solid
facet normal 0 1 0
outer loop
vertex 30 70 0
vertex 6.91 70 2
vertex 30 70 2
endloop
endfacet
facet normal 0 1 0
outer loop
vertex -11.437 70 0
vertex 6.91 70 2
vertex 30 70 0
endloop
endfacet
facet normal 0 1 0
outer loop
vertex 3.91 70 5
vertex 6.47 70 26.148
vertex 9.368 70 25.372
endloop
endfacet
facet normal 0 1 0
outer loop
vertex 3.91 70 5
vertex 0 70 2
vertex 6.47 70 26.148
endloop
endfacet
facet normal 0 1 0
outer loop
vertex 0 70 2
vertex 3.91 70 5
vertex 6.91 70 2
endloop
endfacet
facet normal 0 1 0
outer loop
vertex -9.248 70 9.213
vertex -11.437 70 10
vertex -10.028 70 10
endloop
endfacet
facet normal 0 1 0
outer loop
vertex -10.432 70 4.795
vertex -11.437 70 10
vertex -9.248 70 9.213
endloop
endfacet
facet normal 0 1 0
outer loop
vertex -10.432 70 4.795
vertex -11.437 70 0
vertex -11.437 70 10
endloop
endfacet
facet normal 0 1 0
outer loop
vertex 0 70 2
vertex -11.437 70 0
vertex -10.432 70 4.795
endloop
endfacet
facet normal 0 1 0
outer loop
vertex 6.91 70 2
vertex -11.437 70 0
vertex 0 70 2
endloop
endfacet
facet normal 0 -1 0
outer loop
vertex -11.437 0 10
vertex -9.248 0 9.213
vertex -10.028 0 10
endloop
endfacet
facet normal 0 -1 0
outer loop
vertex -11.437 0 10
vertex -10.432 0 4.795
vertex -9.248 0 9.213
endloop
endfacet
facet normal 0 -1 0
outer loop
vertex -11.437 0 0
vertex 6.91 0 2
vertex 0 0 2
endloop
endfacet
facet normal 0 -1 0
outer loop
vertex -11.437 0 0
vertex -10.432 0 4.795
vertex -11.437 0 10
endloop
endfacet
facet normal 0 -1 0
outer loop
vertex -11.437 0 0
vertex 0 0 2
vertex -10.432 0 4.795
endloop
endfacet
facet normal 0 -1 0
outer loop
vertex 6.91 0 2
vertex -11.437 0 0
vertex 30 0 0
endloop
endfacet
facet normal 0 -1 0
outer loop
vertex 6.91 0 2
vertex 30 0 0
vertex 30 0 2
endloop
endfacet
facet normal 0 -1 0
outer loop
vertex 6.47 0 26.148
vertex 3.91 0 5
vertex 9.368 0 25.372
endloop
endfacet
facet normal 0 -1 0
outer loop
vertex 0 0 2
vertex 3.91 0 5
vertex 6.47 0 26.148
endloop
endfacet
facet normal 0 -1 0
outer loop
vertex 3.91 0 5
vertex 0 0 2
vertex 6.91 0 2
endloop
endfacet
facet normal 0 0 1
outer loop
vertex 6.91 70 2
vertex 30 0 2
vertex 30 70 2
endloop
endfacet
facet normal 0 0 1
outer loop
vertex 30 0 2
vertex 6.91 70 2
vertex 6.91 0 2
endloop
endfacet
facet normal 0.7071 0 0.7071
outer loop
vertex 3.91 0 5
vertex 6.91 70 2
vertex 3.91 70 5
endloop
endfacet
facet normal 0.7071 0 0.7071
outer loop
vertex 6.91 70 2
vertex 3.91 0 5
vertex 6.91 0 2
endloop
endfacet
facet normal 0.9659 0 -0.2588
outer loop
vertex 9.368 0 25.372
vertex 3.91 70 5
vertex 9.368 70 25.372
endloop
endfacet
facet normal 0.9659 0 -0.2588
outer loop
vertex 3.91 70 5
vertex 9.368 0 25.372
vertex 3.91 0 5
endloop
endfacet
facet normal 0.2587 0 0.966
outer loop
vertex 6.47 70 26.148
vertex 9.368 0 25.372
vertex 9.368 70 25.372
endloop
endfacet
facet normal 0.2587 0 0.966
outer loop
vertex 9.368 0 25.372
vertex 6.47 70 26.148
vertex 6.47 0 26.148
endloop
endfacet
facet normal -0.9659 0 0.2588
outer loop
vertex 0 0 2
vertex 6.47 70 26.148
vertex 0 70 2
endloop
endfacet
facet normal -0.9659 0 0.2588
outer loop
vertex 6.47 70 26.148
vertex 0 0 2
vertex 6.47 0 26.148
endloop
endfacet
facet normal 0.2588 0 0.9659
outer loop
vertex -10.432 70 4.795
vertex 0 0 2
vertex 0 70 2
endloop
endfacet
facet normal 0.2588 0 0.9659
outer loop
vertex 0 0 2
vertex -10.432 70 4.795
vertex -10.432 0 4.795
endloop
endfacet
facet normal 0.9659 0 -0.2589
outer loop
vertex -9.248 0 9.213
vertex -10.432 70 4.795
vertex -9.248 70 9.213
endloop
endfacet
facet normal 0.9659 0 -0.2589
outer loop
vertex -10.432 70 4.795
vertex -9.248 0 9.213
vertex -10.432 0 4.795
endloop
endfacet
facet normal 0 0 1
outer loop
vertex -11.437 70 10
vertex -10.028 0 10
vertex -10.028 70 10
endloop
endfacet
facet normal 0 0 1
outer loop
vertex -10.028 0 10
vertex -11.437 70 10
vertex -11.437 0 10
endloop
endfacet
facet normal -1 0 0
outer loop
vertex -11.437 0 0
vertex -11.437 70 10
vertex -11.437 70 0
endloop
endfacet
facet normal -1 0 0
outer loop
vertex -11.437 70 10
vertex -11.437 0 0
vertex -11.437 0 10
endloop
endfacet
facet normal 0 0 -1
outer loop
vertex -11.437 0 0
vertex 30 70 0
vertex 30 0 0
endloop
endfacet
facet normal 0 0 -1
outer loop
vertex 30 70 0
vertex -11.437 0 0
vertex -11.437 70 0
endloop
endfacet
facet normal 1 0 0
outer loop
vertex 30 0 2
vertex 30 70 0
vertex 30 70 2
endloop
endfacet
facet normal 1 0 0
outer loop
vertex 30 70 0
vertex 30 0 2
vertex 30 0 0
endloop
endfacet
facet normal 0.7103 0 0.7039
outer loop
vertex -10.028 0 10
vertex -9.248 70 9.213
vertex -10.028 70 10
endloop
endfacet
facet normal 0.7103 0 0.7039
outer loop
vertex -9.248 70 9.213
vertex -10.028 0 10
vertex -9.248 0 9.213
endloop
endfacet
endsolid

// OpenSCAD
// slab-stand-01.scad
// Low, quick-print, generic display stand for ONE graded slab, leaning 15 deg back.
// Thin-walled profile extruded across the width (2 mm base plate, low front
// lip, thin back rest with a small fillet): prints on its base, no supports,
// no bridges. The slab's bottom edge drops into a short tilted slot and rests
// against the back wedge; the slab is wider than the stand on purpose (less
// plastic, faster print, edges stay free to grab).
//
// Fits any slab up to 9.8 mm thick: the slot is sized for the THICKEST slab
// measured in this repo (ARS 9.8; BGS 8.8, PCG 7.5, CGC 7.4, GBA 7.1,
// PSA/GRADD 6.2). A slot sized for the thinnest would not take the thick ones;
// thinner slabs just lean back on the rest, the extra play doesn't show.
// Width and height don't matter: the slab only sits on its bottom edge.
//
// Export:
//   "C:/Program Files/OpenSCAD/openscad.com" -o <abs>/slab-stand-01.stl <abs>/slab-stand-01.scad

part = "stand"; // "stand" | "check" (stand + ghost slab)

/* [Slab] */
slab_t = 9.8;   // thickest slab to fit (ARS); sets the slot
slab_w = 80.0;  // only used for the ghost and the tip check
slab_h = 135.0;

/* [Fit] */
fit_t = 0.5;          // per side, on thickness (short drop-in, no long slide)

/* [Shape] */
lean     = 15;        // degrees back
width    = 70;        // narrower than every slab (80-84 mm): all stick out 5-7 mm per side
floor_z  = 2;         // base plate / solid under the slot
lip_h    = 8;         // front lip height above the slot floor
lip_t    = 2.4;       // front lip thickness
back_h   = 25;        // how far up the slab the back rest reaches
panel_t  = 3;         // back rest plate thickness
fillet   = 3;         // gusset where the back rest meets the base plate
base_back = 30;       // base plate length behind the slot (anti-tip backwards)
ch       = 1.0;       // chamfer on the slot mouth

// ---------------------------------------------------------------------
slot_t  = slab_t + 2 * fit_t;
lip_top = floor_z + lip_h;

// Slab frame -> world XZ. du = along the slab (up), dn = forward (toward the
// viewer, -X). Origin = bottom/back corner of the slot.
function pt(du, dn) = [ du * sin(lean) - dn * cos(lean),
                        floor_z + du * cos(lean) + dn * sin(lean) ];
function x_at_z(z, dn) = ((z - floor_z - dn * sin(lean)) / cos(lean)) * sin(lean)
                         - dn * cos(lean);

front_x = x_at_z(lip_top, slot_t) - lip_t;
back_x  = base_back;
depth   = back_x - front_x;

// Slab seated: on the slot floor, against the back face (dn = 0..slab_t).
cg_x      = pt(slab_h / 2, slab_t / 2)[0];
pivot_fwd = pt(0, slab_t)[0];            // tips forward around this edge
assert(cg_x > pivot_fwd, "slab would tip forward");
assert(cg_x < back_x - 10, "base too short: stand would tip backward");

echo(str("slab-stand-01: ", depth, " x ", width, " x ", pt(back_h, 0)[1],
         " mm | slot ", slot_t, " mm | slab CG ", cg_x - pivot_fwd,
         " mm behind front edge, ", back_x - cg_x, " mm ahead of base back"));

function profile() = [
    [front_x, 0],
    [front_x, lip_top],
    [x_at_z(lip_top, slot_t), lip_top],   // top of the front lip
    pt(0, slot_t),                        // front face of the slot
    pt(0, 0),                             // slot floor
    pt(back_h, 0),                        // back rest, slab side
    pt(back_h, -panel_t),                 // back rest top
    [x_at_z(floor_z + fillet, -panel_t), floor_z + fillet],  // back face of the plate
    [x_at_z(floor_z + fillet, -panel_t) + fillet, floor_z],  // fillet onto the base
    [back_x, floor_z],                    // base plate top
    [back_x, 0]
];

module xz_extrude(h) {
    translate([0, h, 0]) rotate([90, 0, 0]) linear_extrude(h) children();
}

module in_slab_frame() {
    translate([0, 0, floor_z]) rotate([0, lean, 0]) children();
}

// Opens the slot mouth by `ch` (front lip edge) and the back rest top edge.
module mouth_chamfer() {
    xz_extrude(width + 2) translate([0, 0]) polygon([
        [x_at_z(lip_top, slot_t) - ch, lip_top + 0.01],
        [x_at_z(lip_top, slot_t), lip_top - ch],
        [x_at_z(lip_top, slot_t) + 0.5, lip_top + 0.01]
    ]);
}

module stand() {
    difference() {
        xz_extrude(width) polygon(profile());
        translate([0, -1, 0]) mouth_chamfer();
    }
}

module slab_ghost() {
    in_slab_frame()
        translate([-slab_t, (width - slab_w) / 2, 0]) cube([slab_t, slab_w, slab_h]);
}

stand();
if (part == "check") %slab_ghost();
